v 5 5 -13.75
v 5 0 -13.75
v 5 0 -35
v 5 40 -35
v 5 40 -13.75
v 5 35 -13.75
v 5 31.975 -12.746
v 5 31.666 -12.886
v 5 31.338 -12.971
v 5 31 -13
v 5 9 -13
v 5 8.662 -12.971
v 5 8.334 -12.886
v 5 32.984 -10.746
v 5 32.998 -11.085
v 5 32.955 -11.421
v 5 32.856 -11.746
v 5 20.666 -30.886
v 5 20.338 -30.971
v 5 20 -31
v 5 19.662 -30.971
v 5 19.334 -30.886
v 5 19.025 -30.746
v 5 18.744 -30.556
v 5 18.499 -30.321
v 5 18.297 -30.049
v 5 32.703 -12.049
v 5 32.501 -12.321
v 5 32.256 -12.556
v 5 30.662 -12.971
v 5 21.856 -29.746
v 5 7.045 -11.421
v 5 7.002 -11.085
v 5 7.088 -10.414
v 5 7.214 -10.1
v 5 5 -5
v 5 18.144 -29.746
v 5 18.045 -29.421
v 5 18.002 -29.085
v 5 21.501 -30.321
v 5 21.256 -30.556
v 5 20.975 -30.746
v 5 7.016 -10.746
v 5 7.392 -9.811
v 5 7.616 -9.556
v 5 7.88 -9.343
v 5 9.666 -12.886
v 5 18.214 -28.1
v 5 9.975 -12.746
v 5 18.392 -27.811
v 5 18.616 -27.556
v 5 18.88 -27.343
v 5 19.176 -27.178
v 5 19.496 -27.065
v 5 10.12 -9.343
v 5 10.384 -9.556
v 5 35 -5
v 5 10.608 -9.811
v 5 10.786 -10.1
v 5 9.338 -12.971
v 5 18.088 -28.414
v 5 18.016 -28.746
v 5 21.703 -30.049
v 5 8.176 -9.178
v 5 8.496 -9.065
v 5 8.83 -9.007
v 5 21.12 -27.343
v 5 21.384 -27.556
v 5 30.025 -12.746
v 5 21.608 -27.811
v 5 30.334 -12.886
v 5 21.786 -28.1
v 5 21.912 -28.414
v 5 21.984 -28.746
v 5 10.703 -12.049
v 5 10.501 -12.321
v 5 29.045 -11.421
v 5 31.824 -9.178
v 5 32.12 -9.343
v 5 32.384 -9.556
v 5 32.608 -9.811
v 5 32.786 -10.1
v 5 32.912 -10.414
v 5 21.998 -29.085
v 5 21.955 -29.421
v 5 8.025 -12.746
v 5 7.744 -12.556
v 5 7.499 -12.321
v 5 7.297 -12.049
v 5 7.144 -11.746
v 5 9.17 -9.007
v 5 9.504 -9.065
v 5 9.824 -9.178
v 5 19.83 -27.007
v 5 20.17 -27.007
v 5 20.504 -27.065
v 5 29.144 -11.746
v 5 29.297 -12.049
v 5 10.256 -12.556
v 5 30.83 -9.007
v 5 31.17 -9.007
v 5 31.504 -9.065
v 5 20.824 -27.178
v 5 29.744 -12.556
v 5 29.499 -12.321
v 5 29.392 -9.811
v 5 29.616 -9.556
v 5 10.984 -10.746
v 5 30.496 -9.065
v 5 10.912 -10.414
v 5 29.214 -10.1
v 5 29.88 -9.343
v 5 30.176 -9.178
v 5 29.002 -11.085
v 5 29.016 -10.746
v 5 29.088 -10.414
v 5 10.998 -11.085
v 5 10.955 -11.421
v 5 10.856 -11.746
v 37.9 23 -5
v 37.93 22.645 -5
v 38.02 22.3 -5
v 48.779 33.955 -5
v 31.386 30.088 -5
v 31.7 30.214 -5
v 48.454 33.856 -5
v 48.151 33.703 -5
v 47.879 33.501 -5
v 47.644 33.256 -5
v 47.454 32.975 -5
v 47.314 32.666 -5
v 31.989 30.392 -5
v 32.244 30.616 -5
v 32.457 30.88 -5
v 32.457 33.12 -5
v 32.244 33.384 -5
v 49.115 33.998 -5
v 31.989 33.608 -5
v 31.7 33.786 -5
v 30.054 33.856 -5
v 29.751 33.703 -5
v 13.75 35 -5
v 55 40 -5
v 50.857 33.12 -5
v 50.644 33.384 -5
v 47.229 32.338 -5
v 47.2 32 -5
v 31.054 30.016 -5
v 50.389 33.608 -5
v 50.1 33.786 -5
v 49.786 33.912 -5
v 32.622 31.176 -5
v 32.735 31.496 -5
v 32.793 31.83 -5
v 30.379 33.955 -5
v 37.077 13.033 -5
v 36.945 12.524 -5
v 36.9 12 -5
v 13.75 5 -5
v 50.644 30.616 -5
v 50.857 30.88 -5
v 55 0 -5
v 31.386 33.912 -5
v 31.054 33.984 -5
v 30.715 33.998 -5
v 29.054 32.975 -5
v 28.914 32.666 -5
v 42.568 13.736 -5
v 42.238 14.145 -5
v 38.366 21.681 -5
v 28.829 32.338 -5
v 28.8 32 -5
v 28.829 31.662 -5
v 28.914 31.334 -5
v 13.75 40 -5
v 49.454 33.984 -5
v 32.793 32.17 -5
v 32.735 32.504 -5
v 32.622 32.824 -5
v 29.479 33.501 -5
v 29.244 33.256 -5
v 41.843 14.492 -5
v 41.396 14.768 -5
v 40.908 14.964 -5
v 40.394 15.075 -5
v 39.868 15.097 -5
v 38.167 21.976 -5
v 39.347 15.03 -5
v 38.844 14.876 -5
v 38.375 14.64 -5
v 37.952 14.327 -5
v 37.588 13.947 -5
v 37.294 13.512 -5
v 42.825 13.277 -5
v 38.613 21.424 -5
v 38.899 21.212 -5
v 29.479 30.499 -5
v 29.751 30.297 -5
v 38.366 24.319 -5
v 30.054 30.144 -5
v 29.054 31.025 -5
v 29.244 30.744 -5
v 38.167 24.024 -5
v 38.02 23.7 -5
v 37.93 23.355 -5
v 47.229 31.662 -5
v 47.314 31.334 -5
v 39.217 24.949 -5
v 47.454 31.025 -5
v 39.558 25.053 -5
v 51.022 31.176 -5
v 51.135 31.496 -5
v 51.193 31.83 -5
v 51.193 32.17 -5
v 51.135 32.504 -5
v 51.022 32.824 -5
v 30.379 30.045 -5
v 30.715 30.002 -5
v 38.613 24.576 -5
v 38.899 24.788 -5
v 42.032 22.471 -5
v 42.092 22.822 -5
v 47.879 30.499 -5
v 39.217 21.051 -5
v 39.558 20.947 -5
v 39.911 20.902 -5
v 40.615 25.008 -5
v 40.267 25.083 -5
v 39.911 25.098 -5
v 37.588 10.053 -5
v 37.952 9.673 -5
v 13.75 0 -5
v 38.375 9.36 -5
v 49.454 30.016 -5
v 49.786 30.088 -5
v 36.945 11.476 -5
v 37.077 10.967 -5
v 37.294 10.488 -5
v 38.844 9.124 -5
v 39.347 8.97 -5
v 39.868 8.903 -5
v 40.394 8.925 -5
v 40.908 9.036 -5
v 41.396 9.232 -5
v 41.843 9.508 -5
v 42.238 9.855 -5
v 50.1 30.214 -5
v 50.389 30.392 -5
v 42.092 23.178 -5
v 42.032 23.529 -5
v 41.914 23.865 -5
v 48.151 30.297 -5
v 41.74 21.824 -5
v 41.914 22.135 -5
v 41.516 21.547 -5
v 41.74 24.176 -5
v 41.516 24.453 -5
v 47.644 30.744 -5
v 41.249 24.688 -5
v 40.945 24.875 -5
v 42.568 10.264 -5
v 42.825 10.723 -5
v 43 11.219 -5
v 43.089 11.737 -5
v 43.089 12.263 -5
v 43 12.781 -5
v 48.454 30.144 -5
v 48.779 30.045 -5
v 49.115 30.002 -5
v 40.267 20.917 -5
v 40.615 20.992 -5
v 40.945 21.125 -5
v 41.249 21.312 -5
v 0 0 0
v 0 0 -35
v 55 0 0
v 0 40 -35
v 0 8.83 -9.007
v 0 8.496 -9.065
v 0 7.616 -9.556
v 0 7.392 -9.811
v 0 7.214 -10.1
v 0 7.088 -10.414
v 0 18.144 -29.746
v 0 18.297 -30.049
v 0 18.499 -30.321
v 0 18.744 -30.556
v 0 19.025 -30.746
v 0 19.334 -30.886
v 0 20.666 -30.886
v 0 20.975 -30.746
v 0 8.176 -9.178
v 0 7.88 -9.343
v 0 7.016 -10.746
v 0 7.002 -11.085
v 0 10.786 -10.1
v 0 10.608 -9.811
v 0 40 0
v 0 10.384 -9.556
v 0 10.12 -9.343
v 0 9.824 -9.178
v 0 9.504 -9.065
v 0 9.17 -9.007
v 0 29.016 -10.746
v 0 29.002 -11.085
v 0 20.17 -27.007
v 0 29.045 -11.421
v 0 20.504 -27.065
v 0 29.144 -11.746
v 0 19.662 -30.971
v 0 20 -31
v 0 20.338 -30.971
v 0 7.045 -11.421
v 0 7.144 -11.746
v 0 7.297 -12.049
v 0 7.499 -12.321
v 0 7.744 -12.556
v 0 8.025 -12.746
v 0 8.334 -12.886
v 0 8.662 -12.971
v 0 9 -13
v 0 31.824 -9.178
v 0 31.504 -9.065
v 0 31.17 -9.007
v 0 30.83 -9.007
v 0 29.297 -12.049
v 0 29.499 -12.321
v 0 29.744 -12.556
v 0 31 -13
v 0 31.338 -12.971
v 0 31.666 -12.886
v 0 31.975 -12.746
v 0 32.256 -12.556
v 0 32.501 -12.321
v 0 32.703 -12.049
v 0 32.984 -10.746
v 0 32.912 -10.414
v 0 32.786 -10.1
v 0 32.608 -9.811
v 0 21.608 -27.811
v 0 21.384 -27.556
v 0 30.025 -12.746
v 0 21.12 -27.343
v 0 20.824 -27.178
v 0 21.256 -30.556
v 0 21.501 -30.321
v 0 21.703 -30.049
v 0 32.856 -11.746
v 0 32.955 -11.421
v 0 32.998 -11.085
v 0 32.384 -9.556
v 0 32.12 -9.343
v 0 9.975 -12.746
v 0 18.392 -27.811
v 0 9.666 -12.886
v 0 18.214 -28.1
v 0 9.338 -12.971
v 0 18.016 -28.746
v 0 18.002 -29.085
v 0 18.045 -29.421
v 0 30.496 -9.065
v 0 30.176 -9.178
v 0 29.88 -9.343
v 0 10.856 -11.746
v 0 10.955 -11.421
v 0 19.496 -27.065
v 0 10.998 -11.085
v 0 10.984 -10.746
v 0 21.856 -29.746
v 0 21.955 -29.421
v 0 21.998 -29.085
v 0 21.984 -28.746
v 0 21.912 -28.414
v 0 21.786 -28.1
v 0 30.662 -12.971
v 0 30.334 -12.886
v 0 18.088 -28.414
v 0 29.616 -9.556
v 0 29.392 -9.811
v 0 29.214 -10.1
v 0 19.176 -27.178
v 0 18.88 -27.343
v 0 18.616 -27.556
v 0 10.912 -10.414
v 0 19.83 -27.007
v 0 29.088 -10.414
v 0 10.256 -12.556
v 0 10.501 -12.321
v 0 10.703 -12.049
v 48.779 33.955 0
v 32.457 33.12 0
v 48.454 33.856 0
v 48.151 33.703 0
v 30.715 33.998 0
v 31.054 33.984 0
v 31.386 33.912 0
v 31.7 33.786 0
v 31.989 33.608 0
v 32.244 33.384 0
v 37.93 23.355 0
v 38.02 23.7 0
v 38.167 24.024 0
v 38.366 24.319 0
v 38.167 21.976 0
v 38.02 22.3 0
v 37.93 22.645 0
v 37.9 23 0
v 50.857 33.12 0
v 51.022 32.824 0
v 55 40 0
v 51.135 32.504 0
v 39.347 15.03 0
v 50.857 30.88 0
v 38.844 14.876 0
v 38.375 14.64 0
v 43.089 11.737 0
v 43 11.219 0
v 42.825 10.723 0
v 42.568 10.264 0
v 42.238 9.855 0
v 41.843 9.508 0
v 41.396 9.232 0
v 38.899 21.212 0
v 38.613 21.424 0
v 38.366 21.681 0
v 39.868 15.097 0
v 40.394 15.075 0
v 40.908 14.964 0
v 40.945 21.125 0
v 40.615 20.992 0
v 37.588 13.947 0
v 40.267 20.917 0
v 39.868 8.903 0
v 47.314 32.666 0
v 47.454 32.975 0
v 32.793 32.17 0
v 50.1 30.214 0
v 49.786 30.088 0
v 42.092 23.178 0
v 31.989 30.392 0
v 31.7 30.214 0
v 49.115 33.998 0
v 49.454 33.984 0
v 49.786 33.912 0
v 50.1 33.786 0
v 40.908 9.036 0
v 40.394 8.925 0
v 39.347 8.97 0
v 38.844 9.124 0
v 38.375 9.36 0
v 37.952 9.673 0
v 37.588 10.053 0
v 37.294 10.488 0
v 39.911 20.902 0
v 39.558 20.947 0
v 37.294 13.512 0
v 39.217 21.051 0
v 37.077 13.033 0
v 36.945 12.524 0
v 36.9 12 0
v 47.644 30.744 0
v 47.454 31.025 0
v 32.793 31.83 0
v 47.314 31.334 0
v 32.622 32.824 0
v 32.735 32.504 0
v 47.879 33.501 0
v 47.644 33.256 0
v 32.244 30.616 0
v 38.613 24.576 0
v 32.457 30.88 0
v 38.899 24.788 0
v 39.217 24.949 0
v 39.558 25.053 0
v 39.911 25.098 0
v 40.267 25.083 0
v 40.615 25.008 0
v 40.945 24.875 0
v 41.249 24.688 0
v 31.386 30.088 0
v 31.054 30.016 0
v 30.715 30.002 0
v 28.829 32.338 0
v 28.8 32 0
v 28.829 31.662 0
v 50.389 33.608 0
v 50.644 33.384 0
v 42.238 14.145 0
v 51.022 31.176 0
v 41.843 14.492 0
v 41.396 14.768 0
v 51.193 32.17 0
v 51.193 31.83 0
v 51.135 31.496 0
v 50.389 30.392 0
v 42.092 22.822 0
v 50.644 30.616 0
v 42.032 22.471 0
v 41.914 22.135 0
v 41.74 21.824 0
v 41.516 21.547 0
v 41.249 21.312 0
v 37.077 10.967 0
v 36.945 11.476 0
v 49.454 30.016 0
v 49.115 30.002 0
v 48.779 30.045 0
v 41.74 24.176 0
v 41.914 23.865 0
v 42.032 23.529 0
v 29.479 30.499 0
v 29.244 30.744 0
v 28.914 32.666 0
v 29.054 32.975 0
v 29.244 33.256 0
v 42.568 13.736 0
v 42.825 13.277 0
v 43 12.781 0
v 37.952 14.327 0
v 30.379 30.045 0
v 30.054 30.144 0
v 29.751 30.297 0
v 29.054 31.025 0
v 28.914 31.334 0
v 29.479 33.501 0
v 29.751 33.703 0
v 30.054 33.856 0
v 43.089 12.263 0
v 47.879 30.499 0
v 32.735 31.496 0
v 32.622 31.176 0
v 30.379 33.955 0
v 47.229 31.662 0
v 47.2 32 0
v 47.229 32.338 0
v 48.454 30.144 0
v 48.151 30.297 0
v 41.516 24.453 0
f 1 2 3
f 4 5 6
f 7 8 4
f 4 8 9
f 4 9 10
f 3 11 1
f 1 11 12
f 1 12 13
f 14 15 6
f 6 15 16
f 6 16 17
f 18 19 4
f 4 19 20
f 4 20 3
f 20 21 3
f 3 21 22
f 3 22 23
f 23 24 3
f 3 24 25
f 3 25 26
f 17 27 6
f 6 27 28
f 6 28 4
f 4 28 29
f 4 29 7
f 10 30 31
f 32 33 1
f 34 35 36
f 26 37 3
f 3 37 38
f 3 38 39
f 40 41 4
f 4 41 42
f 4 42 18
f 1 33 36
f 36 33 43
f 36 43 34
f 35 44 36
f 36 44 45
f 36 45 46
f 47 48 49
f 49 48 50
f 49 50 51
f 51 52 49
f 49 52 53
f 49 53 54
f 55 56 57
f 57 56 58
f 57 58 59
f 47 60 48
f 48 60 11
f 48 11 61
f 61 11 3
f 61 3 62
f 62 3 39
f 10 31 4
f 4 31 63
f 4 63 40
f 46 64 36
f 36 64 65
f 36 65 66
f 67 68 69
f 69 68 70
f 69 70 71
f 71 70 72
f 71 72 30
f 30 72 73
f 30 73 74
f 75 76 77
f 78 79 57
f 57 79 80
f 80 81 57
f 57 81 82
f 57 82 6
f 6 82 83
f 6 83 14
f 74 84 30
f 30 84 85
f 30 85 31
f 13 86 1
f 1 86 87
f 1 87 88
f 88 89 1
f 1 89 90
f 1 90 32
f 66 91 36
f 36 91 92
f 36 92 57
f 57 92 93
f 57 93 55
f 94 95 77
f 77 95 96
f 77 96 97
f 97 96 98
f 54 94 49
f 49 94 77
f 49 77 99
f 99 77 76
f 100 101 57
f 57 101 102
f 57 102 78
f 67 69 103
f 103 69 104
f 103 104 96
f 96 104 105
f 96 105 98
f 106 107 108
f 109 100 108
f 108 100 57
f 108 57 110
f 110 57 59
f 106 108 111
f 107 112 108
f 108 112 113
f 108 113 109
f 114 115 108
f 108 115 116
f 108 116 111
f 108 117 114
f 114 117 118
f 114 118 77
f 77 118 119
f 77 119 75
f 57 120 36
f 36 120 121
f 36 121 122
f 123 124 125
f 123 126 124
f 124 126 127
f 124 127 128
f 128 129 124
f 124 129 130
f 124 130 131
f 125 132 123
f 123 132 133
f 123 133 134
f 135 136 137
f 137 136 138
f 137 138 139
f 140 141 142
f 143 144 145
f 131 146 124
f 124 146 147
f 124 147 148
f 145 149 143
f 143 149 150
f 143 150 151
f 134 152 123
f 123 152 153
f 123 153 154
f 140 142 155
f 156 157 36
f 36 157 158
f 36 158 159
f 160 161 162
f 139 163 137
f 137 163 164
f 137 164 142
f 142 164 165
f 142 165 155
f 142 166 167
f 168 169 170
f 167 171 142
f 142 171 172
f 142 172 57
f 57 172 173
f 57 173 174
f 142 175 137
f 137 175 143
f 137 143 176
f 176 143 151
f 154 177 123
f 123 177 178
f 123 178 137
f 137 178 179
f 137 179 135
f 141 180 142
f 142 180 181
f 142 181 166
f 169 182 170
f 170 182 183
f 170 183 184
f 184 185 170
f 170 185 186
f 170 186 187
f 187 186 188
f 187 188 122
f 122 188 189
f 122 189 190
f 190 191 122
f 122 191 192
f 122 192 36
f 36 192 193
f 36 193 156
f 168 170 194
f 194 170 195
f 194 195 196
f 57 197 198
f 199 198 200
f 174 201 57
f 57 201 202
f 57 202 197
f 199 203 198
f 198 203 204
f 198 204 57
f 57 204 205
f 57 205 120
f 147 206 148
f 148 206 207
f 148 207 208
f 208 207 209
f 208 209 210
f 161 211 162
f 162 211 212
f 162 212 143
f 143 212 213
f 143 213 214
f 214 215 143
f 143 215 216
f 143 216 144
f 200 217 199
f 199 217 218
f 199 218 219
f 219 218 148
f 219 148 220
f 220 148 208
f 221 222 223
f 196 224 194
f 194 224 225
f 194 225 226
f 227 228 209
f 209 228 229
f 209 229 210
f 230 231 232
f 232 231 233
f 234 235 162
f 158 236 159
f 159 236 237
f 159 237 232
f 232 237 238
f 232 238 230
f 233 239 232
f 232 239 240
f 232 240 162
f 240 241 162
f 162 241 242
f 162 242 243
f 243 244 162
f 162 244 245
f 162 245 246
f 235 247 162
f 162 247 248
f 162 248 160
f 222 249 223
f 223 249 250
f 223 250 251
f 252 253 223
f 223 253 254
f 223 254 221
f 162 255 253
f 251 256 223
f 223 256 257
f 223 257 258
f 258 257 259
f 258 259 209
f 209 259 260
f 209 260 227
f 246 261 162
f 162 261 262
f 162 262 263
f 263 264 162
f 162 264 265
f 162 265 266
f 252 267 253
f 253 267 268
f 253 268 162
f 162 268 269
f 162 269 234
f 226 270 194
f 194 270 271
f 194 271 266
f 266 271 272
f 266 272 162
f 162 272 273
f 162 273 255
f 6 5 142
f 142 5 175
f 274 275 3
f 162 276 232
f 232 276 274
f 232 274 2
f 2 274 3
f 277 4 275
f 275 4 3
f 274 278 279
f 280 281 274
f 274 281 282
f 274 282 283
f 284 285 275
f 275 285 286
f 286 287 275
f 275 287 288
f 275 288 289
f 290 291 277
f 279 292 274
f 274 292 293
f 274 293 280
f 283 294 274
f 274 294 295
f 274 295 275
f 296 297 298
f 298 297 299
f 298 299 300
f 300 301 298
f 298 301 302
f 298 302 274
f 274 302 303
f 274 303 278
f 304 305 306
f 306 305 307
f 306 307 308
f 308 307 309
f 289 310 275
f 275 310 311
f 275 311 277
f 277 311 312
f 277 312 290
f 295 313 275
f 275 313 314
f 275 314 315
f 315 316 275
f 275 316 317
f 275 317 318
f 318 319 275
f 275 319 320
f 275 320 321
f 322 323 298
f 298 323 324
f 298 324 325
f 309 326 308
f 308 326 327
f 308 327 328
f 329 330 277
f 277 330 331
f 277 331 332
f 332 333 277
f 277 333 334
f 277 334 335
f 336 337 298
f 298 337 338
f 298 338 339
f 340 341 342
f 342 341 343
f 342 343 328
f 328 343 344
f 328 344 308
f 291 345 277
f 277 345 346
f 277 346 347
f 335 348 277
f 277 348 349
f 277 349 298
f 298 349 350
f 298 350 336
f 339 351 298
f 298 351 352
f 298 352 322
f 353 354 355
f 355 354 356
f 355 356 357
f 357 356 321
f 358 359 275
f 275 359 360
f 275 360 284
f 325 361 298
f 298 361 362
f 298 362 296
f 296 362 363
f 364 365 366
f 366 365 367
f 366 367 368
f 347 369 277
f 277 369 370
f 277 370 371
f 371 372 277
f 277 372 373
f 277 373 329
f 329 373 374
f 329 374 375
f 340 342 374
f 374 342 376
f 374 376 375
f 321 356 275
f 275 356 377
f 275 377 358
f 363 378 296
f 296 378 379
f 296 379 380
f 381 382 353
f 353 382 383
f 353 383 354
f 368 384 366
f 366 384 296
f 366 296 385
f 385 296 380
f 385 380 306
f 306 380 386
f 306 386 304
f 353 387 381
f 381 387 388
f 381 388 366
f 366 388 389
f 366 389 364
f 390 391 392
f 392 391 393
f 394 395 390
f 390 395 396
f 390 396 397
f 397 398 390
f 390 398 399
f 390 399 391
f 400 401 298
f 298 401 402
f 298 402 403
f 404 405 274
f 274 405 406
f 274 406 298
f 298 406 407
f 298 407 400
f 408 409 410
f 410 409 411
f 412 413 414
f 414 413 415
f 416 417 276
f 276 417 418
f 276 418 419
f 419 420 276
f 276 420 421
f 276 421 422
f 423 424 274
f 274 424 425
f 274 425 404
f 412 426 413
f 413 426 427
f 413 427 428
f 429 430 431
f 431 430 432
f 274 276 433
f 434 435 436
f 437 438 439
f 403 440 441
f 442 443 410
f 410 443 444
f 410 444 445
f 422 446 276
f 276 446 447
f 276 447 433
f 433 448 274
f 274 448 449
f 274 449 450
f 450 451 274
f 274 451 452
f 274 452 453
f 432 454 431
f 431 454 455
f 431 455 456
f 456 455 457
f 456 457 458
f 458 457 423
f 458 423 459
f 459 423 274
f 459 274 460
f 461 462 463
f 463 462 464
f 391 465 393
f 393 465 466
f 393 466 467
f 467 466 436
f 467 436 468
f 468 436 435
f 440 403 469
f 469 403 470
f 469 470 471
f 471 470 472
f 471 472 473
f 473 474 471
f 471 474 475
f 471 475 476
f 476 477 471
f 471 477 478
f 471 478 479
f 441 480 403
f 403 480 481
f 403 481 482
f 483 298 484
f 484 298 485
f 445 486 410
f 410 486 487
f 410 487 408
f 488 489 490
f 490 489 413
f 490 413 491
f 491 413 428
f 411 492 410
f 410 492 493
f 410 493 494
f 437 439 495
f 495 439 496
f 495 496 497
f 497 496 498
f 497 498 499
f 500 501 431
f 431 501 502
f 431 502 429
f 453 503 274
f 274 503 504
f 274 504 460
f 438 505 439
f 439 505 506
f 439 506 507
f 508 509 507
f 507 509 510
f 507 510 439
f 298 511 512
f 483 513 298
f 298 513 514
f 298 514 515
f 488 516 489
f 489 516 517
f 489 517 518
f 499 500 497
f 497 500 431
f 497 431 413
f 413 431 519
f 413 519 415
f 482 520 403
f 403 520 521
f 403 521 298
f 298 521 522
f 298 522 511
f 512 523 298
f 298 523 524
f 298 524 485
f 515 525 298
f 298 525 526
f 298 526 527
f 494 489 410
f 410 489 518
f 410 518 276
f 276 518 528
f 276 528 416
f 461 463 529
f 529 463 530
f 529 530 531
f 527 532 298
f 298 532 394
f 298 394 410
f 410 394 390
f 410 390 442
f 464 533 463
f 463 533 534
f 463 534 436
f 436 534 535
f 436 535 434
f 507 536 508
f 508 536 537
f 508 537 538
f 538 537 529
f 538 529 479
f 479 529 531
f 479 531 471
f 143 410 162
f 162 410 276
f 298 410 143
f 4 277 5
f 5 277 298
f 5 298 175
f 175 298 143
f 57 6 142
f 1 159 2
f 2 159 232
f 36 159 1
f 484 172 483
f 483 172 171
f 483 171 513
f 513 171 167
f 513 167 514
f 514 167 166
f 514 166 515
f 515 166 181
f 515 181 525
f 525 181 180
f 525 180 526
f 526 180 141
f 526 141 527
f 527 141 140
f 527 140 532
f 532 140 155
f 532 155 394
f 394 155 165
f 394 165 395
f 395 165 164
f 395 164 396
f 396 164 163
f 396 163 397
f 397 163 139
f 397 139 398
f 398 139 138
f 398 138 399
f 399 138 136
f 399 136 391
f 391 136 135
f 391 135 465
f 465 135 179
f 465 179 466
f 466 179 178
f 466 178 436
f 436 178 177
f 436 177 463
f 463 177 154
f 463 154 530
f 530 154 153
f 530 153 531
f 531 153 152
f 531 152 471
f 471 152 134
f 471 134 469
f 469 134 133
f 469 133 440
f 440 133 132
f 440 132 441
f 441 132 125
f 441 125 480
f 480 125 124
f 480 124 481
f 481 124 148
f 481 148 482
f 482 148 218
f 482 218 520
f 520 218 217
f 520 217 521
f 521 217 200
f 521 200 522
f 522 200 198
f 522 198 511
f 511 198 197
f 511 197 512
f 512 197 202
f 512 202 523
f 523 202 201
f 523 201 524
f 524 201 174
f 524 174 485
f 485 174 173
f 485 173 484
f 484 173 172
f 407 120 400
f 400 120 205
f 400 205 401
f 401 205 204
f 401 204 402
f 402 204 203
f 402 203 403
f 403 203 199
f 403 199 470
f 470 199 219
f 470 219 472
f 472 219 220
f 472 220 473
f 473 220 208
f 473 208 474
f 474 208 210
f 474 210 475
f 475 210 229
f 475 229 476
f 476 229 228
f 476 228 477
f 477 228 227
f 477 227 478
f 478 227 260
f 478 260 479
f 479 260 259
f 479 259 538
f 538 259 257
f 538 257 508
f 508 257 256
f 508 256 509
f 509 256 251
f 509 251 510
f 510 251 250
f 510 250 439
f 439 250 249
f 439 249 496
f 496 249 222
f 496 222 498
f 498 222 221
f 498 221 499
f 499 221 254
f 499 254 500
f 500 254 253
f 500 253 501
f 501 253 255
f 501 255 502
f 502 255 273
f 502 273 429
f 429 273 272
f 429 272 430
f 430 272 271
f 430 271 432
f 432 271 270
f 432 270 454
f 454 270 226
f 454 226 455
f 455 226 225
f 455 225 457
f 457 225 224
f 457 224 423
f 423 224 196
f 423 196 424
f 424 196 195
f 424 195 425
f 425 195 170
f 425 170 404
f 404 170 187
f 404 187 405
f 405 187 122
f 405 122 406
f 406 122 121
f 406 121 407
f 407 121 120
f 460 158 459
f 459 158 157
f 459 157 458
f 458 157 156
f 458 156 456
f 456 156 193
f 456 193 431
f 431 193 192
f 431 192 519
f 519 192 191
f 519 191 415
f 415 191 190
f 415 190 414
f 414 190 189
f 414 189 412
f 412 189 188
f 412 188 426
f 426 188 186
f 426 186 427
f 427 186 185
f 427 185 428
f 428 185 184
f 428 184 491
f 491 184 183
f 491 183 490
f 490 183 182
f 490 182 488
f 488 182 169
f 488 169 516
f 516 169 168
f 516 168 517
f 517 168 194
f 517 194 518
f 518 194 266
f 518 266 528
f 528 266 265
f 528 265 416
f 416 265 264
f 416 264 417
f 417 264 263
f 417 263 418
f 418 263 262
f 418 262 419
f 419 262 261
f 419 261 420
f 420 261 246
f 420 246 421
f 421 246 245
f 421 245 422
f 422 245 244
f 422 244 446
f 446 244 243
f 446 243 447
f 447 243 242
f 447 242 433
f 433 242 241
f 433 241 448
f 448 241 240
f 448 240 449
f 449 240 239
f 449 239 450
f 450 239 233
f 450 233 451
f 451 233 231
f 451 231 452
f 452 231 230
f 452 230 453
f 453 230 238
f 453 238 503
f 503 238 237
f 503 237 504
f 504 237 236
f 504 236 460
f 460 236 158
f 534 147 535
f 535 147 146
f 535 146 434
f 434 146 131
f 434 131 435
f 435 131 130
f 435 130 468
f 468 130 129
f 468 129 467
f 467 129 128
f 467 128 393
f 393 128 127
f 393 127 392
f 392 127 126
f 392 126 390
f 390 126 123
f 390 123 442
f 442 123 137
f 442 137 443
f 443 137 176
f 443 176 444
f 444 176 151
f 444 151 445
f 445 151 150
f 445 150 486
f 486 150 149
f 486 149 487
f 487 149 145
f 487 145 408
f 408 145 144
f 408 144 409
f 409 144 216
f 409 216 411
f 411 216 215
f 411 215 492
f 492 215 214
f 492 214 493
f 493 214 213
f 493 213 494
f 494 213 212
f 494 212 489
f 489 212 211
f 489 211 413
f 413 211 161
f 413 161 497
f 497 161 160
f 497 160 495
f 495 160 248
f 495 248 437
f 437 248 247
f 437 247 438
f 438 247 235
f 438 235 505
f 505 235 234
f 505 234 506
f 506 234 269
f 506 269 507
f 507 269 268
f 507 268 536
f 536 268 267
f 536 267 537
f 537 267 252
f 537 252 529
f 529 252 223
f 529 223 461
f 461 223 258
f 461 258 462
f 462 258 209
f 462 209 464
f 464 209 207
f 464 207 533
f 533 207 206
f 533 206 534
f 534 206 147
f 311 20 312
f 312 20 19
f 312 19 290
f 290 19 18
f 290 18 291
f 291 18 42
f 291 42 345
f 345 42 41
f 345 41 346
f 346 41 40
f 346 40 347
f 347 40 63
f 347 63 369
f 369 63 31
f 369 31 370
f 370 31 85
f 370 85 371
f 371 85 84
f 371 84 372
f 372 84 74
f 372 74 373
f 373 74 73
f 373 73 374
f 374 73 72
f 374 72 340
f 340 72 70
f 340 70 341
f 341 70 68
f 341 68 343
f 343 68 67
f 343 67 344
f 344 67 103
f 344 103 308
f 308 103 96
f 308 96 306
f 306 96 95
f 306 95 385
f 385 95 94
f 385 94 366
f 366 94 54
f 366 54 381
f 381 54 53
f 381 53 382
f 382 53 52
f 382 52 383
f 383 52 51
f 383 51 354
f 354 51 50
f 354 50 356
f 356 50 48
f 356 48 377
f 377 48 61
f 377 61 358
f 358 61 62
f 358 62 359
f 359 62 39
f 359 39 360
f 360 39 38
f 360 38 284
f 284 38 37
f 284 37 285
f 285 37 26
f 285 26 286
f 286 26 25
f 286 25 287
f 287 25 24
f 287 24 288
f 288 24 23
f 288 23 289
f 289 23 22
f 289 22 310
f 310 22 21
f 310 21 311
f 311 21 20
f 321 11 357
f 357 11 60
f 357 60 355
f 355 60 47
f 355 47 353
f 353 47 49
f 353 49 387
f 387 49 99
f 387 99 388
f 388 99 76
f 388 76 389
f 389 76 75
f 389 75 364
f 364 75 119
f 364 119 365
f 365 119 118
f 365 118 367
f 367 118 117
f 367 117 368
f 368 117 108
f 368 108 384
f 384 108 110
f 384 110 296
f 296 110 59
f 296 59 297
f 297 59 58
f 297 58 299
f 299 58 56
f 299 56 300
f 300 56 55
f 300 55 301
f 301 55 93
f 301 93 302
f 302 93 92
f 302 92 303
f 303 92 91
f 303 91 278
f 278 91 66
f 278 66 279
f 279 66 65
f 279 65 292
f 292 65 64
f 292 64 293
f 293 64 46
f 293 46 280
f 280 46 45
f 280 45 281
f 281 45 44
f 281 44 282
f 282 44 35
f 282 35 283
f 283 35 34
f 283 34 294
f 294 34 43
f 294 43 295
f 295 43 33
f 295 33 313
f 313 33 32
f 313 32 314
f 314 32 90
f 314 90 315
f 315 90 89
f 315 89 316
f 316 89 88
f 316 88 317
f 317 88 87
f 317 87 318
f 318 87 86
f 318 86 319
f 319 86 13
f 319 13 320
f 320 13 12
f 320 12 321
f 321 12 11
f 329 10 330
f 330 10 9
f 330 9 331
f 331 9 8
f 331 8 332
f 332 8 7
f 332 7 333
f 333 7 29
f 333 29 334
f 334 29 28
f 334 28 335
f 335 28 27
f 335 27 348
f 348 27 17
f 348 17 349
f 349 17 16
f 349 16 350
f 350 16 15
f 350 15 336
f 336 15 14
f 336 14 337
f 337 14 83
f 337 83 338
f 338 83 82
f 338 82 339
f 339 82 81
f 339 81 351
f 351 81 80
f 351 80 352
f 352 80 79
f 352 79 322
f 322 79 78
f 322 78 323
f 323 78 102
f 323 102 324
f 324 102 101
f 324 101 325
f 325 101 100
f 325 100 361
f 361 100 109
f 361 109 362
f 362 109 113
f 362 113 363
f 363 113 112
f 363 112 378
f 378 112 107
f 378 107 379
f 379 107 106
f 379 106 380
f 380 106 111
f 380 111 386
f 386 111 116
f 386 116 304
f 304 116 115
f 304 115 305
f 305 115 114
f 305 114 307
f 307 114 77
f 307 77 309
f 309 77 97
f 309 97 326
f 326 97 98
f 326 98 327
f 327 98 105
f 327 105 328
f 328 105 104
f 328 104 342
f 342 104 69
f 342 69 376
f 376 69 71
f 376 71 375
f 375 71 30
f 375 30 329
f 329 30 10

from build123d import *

# Parameters (mm, degrees)
BOSS_EXTRUDE3_DEPTH = 40
CUT_EXTRUDE1_DEPTH  = 35
BOSS_EXTRUDE4_DEPTH = 5
SKETCH7_R           = 2
SKETCH7_R_2         = 3.1
SKETCH7_R_3         = 2.1
CUT_EXTRUDE7_DEPTH  = 5
SKETCH15_R          = 2
CUT_EXTRUDE8_DEPTH  = 73.972597597


with BuildPart() as part:
    # Sketch1 → Boss-Extrude3 (new body)
    with BuildSketch(Plane(origin=(0, 0, 0), x_dir=(1, 0, 0), z_dir=(0, 1, 0))):
        Polygon((0, 0), (55, 0), (55, 5), (13.75, 5), (5, 13.75), (5, 35), (0, 35), align=None)
    extrude(amount=BOSS_EXTRUDE3_DEPTH)

    # Sketch5 → Cut-Extrude1 (cut)
    with BuildSketch(Plane.XZ):
        Polygon((5, -13.75), (5, -5), (13.75, -5), align=None)
    extrude(amount=-CUT_EXTRUDE1_DEPTH, mode=Mode.SUBTRACT)

    # Sketch6 → Boss-Extrude4 (add)
    with BuildSketch(Plane.XZ):
        Polygon((13.75, -5), (5, -13.75), (5, -5), align=None)
    extrude(amount=-BOSS_EXTRUDE4_DEPTH)

    # Sketch7 → Cut-Extrude7 (cut)
    with BuildSketch(Plane(origin=(0, 0, -5), x_dir=(-1, 0, 0), z_dir=(0, 0, -1))):
        with Locations((-49.2, 32)):
            Circle(SKETCH7_R)
        with Locations((-40, 12)):
            Circle(SKETCH7_R_2)
        with Locations((-40, 23)):
            Circle(SKETCH7_R_3)
        with Locations((-30.8, 32)):
            Circle(SKETCH7_R)
    extrude(amount=-CUT_EXTRUDE7_DEPTH, mode=Mode.SUBTRACT)

    # Sketch15 → Cut-Extrude8 (cut, through all)
    with BuildSketch(Plane(origin=(5, 0, 0), x_dir=(0, 0, -1), z_dir=(1, 0, 0))):
        with Locations((11, 31)):
            Circle(SKETCH15_R)
        with Locations((11, 9)):
            Circle(SKETCH15_R)
        with Locations((29, 20)):
            Circle(SKETCH15_R)
    extrude(amount=-CUT_EXTRUDE8_DEPTH, mode=Mode.SUBTRACT)


solid = part.part
